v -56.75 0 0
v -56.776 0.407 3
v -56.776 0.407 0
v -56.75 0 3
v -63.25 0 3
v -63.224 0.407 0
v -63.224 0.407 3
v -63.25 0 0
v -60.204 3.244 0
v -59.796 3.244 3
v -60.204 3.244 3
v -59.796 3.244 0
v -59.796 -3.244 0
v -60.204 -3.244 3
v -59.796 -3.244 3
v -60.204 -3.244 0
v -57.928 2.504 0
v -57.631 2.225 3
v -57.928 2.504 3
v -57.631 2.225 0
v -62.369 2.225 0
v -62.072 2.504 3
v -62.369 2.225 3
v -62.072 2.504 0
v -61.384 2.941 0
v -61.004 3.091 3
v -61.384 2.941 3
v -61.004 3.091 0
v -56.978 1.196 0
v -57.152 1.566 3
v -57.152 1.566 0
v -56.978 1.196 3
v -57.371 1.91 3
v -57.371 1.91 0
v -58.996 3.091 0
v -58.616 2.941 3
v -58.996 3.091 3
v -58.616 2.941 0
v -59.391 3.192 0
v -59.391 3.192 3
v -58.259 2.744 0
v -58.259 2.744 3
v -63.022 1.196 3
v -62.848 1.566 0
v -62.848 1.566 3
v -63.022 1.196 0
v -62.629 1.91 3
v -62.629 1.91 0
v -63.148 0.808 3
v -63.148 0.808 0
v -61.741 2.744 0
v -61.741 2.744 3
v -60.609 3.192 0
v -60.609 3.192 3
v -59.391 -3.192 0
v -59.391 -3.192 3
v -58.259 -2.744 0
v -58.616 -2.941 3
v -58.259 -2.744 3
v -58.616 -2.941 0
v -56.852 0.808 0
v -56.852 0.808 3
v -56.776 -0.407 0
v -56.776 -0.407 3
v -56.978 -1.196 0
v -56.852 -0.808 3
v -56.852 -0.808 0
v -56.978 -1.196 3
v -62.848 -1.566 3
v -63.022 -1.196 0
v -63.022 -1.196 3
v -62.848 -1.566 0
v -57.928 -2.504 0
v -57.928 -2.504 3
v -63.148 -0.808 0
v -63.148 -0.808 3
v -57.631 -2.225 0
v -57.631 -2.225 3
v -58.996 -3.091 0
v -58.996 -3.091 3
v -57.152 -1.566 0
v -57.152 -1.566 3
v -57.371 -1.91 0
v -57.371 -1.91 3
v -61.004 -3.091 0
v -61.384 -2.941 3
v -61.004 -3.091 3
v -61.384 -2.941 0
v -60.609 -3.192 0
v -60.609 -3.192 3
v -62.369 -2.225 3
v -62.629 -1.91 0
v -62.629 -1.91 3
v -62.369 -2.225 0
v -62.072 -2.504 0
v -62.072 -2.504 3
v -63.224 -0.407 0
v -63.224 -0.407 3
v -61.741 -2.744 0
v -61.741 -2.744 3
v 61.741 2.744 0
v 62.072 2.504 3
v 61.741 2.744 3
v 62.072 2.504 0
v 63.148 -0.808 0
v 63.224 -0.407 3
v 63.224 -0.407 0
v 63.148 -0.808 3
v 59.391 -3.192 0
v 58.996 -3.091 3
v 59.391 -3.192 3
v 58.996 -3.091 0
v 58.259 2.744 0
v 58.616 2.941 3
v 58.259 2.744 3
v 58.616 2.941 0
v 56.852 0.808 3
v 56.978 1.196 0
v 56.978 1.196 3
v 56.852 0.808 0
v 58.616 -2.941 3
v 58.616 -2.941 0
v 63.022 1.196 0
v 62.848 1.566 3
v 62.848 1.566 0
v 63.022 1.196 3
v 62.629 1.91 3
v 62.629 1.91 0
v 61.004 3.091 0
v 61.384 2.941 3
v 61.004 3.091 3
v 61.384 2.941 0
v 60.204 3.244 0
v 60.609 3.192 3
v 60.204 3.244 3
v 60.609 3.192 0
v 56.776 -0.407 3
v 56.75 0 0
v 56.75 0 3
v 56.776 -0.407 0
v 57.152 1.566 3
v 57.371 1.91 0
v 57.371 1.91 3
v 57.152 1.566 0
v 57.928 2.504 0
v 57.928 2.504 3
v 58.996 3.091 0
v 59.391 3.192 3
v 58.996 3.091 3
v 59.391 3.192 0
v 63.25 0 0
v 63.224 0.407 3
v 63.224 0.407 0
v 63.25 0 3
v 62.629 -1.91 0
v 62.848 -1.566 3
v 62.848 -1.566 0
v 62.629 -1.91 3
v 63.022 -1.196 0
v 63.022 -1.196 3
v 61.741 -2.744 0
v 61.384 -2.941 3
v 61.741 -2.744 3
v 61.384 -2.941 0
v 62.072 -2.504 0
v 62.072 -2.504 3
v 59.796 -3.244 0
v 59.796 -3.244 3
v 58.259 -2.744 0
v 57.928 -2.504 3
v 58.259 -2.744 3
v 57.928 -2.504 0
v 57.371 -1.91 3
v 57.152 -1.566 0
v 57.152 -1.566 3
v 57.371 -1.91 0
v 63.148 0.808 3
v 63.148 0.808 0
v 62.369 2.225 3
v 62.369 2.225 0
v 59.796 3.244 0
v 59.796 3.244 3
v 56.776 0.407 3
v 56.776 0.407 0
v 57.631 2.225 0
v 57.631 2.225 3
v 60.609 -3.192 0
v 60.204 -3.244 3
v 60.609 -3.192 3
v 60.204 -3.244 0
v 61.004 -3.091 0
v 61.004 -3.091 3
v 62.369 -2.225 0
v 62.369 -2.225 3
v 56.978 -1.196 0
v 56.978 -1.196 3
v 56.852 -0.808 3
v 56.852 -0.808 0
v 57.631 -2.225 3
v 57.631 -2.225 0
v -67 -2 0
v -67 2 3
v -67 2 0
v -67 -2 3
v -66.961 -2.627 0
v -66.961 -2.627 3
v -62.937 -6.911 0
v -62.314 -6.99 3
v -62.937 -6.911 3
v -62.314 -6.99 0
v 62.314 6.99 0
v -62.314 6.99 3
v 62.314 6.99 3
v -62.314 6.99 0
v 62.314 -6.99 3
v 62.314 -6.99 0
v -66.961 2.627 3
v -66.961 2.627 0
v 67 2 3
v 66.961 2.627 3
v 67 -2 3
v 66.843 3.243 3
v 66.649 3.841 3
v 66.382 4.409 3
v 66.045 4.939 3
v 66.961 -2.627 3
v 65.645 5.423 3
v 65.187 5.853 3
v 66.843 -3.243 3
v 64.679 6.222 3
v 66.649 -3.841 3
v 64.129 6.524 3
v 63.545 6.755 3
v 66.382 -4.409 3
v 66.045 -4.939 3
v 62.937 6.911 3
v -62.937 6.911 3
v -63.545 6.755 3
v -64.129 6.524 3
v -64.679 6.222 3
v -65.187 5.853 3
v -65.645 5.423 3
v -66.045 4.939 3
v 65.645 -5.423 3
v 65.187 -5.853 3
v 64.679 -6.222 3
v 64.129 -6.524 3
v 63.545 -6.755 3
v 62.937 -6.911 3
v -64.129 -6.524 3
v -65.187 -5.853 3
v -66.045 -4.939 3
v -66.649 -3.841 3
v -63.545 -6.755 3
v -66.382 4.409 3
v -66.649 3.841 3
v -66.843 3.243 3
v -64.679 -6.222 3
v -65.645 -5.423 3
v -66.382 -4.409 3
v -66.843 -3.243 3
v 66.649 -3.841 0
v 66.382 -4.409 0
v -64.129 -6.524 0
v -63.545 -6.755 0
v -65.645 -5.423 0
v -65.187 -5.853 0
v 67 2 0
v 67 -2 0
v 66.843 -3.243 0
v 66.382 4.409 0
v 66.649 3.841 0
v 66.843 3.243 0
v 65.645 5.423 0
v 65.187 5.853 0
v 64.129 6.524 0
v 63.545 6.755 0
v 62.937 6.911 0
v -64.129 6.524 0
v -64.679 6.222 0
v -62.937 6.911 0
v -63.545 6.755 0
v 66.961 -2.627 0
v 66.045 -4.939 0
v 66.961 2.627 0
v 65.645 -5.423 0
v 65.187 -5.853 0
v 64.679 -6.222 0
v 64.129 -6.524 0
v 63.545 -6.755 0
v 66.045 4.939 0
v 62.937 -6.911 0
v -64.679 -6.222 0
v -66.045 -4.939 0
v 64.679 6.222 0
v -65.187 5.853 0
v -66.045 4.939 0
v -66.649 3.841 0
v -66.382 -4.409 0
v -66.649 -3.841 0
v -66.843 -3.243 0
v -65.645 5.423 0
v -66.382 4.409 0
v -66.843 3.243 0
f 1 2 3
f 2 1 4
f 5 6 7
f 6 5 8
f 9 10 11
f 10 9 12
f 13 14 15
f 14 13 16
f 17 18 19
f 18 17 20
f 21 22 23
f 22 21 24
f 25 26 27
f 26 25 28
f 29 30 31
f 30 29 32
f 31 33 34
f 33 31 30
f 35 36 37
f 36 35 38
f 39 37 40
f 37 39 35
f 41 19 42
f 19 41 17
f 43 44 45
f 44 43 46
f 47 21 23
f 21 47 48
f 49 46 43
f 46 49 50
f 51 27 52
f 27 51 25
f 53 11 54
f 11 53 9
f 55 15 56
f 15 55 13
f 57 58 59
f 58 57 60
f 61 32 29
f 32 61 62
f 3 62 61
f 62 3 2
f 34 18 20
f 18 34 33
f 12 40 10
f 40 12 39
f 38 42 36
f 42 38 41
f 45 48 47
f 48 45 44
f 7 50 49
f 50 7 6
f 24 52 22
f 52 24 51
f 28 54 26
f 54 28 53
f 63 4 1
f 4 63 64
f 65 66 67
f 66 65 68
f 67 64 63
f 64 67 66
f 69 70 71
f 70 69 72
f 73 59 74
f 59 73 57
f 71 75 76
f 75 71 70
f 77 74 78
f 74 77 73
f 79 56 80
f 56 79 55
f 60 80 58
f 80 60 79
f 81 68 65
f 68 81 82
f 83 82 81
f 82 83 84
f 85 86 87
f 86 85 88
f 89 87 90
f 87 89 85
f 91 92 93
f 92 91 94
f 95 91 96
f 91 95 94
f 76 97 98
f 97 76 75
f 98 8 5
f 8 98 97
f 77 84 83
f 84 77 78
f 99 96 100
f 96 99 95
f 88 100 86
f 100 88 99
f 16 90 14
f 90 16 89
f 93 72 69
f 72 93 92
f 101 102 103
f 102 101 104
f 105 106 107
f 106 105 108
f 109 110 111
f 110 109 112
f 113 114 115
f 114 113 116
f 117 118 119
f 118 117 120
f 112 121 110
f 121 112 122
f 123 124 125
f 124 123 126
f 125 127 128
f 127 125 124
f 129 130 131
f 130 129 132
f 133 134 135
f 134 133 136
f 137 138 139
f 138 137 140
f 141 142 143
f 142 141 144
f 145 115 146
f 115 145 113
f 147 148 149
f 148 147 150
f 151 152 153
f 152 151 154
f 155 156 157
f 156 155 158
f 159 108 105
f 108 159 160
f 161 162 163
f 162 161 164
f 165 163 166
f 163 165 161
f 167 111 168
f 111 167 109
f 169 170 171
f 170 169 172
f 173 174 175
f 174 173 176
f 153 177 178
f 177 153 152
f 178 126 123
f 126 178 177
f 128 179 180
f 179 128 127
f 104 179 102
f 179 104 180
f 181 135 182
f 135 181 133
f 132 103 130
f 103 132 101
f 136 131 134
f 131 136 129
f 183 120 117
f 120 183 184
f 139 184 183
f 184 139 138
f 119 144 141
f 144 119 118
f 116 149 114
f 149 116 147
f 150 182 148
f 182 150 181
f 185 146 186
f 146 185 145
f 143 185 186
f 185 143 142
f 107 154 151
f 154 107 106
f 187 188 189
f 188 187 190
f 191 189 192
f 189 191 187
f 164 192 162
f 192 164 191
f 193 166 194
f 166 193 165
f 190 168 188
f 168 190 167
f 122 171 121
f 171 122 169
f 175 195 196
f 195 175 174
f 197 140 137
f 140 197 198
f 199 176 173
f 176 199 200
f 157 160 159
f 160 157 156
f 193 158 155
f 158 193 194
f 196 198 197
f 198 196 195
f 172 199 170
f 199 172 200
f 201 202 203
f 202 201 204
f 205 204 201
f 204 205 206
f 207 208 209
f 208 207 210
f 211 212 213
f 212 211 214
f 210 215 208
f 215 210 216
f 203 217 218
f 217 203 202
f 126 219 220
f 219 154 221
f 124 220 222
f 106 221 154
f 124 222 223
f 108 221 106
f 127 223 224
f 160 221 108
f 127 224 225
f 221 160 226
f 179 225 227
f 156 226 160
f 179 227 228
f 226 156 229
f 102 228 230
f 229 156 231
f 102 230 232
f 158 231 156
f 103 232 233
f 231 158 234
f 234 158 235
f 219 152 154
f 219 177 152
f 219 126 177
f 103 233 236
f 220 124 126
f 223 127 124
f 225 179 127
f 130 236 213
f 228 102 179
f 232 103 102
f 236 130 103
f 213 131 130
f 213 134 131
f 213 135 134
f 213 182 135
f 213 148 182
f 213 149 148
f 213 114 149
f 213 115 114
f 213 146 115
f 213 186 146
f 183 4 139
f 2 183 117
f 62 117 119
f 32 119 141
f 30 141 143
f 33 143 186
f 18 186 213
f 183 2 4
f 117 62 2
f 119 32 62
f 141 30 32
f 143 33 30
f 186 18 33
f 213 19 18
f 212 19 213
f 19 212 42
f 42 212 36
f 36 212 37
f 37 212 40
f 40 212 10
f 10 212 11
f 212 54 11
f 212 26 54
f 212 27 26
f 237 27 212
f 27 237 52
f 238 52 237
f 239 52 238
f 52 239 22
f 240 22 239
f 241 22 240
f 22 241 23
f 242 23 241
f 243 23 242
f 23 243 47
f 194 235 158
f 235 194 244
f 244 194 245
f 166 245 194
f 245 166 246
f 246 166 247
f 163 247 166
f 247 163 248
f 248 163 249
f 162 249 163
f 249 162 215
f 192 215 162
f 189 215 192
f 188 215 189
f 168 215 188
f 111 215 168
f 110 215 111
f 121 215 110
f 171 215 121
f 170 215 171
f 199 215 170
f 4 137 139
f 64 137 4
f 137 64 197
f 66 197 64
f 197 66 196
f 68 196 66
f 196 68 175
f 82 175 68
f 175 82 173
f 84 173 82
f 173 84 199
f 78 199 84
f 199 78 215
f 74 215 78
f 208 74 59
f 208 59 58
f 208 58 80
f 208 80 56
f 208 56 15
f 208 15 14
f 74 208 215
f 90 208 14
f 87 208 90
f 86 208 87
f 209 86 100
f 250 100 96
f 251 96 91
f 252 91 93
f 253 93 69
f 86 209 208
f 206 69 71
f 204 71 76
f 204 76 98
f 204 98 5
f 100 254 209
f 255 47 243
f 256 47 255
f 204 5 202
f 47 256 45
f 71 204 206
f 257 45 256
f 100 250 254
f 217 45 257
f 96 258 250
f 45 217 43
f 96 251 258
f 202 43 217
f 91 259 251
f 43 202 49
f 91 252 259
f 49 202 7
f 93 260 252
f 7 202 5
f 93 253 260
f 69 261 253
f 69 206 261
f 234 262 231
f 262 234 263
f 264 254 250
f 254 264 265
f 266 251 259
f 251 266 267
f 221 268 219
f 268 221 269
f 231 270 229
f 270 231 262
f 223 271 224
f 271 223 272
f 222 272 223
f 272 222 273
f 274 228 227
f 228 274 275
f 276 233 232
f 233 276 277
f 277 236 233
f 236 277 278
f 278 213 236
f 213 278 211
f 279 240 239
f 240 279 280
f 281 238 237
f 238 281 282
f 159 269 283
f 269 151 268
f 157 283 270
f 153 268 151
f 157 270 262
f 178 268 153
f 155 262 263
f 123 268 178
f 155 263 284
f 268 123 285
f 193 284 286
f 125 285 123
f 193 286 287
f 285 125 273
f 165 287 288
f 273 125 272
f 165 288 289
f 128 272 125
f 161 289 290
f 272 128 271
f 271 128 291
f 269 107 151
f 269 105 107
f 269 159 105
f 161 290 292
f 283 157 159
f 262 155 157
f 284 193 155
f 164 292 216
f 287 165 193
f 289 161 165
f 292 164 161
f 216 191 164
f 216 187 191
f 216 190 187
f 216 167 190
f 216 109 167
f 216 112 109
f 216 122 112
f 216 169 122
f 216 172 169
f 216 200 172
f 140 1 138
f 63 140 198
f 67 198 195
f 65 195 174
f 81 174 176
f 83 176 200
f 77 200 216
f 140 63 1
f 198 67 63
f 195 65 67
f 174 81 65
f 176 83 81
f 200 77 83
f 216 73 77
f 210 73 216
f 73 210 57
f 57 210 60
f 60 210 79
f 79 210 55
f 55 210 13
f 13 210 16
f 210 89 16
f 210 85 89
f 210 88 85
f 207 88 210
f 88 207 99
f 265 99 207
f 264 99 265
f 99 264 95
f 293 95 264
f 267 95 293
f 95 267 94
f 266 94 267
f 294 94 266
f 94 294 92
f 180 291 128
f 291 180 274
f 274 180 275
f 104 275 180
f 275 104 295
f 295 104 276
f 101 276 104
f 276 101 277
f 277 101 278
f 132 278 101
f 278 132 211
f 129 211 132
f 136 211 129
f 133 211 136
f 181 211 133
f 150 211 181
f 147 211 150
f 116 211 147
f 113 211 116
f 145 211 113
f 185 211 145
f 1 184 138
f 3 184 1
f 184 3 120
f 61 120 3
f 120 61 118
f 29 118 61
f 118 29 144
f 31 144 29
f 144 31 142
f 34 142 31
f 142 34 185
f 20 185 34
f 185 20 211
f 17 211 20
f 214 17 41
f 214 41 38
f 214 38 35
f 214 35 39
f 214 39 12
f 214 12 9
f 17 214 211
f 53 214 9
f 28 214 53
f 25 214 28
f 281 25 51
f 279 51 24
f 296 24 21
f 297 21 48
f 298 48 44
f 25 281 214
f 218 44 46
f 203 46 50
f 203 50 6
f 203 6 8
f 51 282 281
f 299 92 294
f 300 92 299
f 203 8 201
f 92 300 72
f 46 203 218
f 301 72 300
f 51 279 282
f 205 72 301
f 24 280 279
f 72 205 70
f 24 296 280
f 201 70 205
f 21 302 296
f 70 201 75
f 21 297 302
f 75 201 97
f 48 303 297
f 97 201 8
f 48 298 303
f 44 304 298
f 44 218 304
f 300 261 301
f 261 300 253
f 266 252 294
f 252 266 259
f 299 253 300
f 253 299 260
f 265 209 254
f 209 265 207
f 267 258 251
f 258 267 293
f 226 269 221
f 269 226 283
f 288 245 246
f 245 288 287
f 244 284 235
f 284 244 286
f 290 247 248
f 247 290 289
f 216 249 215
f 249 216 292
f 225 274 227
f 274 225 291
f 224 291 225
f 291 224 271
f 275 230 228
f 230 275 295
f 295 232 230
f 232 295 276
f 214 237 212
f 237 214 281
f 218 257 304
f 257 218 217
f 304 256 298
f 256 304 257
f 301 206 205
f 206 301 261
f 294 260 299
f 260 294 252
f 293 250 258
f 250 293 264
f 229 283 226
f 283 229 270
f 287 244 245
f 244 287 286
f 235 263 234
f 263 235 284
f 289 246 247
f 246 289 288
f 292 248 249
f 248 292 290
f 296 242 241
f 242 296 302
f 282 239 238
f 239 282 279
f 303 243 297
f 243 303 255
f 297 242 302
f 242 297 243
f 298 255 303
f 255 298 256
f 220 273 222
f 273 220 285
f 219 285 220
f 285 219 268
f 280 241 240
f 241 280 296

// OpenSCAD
$fn = 50;


difference() {
	union() {
		hull() {
			translate(v = [-62.0000000000, 2.0000000000, 0]) {
				cylinder(h = 3, r = 5);
			}
			translate(v = [62.0000000000, 2.0000000000, 0]) {
				cylinder(h = 3, r = 5);
			}
			translate(v = [-62.0000000000, -2.0000000000, 0]) {
				cylinder(h = 3, r = 5);
			}
			translate(v = [62.0000000000, -2.0000000000, 0]) {
				cylinder(h = 3, r = 5);
			}
		}
	}
	union() {
		translate(v = [-60.0000000000, 0.0000000000, -100.0000000000]) {
			cylinder(h = 200, r = 3.2500000000);
		}
		translate(v = [-60.0000000000, 0.0000000000, -100.0000000000]) {
			cylinder(h = 200, r = 3.2500000000);
		}
		translate(v = [60.0000000000, 0.0000000000, -100.0000000000]) {
			cylinder(h = 200, r = 3.2500000000);
		}
		translate(v = [60.0000000000, 0.0000000000, -100.0000000000]) {
			cylinder(h = 200, r = 3.2500000000);
		}
	}
}
